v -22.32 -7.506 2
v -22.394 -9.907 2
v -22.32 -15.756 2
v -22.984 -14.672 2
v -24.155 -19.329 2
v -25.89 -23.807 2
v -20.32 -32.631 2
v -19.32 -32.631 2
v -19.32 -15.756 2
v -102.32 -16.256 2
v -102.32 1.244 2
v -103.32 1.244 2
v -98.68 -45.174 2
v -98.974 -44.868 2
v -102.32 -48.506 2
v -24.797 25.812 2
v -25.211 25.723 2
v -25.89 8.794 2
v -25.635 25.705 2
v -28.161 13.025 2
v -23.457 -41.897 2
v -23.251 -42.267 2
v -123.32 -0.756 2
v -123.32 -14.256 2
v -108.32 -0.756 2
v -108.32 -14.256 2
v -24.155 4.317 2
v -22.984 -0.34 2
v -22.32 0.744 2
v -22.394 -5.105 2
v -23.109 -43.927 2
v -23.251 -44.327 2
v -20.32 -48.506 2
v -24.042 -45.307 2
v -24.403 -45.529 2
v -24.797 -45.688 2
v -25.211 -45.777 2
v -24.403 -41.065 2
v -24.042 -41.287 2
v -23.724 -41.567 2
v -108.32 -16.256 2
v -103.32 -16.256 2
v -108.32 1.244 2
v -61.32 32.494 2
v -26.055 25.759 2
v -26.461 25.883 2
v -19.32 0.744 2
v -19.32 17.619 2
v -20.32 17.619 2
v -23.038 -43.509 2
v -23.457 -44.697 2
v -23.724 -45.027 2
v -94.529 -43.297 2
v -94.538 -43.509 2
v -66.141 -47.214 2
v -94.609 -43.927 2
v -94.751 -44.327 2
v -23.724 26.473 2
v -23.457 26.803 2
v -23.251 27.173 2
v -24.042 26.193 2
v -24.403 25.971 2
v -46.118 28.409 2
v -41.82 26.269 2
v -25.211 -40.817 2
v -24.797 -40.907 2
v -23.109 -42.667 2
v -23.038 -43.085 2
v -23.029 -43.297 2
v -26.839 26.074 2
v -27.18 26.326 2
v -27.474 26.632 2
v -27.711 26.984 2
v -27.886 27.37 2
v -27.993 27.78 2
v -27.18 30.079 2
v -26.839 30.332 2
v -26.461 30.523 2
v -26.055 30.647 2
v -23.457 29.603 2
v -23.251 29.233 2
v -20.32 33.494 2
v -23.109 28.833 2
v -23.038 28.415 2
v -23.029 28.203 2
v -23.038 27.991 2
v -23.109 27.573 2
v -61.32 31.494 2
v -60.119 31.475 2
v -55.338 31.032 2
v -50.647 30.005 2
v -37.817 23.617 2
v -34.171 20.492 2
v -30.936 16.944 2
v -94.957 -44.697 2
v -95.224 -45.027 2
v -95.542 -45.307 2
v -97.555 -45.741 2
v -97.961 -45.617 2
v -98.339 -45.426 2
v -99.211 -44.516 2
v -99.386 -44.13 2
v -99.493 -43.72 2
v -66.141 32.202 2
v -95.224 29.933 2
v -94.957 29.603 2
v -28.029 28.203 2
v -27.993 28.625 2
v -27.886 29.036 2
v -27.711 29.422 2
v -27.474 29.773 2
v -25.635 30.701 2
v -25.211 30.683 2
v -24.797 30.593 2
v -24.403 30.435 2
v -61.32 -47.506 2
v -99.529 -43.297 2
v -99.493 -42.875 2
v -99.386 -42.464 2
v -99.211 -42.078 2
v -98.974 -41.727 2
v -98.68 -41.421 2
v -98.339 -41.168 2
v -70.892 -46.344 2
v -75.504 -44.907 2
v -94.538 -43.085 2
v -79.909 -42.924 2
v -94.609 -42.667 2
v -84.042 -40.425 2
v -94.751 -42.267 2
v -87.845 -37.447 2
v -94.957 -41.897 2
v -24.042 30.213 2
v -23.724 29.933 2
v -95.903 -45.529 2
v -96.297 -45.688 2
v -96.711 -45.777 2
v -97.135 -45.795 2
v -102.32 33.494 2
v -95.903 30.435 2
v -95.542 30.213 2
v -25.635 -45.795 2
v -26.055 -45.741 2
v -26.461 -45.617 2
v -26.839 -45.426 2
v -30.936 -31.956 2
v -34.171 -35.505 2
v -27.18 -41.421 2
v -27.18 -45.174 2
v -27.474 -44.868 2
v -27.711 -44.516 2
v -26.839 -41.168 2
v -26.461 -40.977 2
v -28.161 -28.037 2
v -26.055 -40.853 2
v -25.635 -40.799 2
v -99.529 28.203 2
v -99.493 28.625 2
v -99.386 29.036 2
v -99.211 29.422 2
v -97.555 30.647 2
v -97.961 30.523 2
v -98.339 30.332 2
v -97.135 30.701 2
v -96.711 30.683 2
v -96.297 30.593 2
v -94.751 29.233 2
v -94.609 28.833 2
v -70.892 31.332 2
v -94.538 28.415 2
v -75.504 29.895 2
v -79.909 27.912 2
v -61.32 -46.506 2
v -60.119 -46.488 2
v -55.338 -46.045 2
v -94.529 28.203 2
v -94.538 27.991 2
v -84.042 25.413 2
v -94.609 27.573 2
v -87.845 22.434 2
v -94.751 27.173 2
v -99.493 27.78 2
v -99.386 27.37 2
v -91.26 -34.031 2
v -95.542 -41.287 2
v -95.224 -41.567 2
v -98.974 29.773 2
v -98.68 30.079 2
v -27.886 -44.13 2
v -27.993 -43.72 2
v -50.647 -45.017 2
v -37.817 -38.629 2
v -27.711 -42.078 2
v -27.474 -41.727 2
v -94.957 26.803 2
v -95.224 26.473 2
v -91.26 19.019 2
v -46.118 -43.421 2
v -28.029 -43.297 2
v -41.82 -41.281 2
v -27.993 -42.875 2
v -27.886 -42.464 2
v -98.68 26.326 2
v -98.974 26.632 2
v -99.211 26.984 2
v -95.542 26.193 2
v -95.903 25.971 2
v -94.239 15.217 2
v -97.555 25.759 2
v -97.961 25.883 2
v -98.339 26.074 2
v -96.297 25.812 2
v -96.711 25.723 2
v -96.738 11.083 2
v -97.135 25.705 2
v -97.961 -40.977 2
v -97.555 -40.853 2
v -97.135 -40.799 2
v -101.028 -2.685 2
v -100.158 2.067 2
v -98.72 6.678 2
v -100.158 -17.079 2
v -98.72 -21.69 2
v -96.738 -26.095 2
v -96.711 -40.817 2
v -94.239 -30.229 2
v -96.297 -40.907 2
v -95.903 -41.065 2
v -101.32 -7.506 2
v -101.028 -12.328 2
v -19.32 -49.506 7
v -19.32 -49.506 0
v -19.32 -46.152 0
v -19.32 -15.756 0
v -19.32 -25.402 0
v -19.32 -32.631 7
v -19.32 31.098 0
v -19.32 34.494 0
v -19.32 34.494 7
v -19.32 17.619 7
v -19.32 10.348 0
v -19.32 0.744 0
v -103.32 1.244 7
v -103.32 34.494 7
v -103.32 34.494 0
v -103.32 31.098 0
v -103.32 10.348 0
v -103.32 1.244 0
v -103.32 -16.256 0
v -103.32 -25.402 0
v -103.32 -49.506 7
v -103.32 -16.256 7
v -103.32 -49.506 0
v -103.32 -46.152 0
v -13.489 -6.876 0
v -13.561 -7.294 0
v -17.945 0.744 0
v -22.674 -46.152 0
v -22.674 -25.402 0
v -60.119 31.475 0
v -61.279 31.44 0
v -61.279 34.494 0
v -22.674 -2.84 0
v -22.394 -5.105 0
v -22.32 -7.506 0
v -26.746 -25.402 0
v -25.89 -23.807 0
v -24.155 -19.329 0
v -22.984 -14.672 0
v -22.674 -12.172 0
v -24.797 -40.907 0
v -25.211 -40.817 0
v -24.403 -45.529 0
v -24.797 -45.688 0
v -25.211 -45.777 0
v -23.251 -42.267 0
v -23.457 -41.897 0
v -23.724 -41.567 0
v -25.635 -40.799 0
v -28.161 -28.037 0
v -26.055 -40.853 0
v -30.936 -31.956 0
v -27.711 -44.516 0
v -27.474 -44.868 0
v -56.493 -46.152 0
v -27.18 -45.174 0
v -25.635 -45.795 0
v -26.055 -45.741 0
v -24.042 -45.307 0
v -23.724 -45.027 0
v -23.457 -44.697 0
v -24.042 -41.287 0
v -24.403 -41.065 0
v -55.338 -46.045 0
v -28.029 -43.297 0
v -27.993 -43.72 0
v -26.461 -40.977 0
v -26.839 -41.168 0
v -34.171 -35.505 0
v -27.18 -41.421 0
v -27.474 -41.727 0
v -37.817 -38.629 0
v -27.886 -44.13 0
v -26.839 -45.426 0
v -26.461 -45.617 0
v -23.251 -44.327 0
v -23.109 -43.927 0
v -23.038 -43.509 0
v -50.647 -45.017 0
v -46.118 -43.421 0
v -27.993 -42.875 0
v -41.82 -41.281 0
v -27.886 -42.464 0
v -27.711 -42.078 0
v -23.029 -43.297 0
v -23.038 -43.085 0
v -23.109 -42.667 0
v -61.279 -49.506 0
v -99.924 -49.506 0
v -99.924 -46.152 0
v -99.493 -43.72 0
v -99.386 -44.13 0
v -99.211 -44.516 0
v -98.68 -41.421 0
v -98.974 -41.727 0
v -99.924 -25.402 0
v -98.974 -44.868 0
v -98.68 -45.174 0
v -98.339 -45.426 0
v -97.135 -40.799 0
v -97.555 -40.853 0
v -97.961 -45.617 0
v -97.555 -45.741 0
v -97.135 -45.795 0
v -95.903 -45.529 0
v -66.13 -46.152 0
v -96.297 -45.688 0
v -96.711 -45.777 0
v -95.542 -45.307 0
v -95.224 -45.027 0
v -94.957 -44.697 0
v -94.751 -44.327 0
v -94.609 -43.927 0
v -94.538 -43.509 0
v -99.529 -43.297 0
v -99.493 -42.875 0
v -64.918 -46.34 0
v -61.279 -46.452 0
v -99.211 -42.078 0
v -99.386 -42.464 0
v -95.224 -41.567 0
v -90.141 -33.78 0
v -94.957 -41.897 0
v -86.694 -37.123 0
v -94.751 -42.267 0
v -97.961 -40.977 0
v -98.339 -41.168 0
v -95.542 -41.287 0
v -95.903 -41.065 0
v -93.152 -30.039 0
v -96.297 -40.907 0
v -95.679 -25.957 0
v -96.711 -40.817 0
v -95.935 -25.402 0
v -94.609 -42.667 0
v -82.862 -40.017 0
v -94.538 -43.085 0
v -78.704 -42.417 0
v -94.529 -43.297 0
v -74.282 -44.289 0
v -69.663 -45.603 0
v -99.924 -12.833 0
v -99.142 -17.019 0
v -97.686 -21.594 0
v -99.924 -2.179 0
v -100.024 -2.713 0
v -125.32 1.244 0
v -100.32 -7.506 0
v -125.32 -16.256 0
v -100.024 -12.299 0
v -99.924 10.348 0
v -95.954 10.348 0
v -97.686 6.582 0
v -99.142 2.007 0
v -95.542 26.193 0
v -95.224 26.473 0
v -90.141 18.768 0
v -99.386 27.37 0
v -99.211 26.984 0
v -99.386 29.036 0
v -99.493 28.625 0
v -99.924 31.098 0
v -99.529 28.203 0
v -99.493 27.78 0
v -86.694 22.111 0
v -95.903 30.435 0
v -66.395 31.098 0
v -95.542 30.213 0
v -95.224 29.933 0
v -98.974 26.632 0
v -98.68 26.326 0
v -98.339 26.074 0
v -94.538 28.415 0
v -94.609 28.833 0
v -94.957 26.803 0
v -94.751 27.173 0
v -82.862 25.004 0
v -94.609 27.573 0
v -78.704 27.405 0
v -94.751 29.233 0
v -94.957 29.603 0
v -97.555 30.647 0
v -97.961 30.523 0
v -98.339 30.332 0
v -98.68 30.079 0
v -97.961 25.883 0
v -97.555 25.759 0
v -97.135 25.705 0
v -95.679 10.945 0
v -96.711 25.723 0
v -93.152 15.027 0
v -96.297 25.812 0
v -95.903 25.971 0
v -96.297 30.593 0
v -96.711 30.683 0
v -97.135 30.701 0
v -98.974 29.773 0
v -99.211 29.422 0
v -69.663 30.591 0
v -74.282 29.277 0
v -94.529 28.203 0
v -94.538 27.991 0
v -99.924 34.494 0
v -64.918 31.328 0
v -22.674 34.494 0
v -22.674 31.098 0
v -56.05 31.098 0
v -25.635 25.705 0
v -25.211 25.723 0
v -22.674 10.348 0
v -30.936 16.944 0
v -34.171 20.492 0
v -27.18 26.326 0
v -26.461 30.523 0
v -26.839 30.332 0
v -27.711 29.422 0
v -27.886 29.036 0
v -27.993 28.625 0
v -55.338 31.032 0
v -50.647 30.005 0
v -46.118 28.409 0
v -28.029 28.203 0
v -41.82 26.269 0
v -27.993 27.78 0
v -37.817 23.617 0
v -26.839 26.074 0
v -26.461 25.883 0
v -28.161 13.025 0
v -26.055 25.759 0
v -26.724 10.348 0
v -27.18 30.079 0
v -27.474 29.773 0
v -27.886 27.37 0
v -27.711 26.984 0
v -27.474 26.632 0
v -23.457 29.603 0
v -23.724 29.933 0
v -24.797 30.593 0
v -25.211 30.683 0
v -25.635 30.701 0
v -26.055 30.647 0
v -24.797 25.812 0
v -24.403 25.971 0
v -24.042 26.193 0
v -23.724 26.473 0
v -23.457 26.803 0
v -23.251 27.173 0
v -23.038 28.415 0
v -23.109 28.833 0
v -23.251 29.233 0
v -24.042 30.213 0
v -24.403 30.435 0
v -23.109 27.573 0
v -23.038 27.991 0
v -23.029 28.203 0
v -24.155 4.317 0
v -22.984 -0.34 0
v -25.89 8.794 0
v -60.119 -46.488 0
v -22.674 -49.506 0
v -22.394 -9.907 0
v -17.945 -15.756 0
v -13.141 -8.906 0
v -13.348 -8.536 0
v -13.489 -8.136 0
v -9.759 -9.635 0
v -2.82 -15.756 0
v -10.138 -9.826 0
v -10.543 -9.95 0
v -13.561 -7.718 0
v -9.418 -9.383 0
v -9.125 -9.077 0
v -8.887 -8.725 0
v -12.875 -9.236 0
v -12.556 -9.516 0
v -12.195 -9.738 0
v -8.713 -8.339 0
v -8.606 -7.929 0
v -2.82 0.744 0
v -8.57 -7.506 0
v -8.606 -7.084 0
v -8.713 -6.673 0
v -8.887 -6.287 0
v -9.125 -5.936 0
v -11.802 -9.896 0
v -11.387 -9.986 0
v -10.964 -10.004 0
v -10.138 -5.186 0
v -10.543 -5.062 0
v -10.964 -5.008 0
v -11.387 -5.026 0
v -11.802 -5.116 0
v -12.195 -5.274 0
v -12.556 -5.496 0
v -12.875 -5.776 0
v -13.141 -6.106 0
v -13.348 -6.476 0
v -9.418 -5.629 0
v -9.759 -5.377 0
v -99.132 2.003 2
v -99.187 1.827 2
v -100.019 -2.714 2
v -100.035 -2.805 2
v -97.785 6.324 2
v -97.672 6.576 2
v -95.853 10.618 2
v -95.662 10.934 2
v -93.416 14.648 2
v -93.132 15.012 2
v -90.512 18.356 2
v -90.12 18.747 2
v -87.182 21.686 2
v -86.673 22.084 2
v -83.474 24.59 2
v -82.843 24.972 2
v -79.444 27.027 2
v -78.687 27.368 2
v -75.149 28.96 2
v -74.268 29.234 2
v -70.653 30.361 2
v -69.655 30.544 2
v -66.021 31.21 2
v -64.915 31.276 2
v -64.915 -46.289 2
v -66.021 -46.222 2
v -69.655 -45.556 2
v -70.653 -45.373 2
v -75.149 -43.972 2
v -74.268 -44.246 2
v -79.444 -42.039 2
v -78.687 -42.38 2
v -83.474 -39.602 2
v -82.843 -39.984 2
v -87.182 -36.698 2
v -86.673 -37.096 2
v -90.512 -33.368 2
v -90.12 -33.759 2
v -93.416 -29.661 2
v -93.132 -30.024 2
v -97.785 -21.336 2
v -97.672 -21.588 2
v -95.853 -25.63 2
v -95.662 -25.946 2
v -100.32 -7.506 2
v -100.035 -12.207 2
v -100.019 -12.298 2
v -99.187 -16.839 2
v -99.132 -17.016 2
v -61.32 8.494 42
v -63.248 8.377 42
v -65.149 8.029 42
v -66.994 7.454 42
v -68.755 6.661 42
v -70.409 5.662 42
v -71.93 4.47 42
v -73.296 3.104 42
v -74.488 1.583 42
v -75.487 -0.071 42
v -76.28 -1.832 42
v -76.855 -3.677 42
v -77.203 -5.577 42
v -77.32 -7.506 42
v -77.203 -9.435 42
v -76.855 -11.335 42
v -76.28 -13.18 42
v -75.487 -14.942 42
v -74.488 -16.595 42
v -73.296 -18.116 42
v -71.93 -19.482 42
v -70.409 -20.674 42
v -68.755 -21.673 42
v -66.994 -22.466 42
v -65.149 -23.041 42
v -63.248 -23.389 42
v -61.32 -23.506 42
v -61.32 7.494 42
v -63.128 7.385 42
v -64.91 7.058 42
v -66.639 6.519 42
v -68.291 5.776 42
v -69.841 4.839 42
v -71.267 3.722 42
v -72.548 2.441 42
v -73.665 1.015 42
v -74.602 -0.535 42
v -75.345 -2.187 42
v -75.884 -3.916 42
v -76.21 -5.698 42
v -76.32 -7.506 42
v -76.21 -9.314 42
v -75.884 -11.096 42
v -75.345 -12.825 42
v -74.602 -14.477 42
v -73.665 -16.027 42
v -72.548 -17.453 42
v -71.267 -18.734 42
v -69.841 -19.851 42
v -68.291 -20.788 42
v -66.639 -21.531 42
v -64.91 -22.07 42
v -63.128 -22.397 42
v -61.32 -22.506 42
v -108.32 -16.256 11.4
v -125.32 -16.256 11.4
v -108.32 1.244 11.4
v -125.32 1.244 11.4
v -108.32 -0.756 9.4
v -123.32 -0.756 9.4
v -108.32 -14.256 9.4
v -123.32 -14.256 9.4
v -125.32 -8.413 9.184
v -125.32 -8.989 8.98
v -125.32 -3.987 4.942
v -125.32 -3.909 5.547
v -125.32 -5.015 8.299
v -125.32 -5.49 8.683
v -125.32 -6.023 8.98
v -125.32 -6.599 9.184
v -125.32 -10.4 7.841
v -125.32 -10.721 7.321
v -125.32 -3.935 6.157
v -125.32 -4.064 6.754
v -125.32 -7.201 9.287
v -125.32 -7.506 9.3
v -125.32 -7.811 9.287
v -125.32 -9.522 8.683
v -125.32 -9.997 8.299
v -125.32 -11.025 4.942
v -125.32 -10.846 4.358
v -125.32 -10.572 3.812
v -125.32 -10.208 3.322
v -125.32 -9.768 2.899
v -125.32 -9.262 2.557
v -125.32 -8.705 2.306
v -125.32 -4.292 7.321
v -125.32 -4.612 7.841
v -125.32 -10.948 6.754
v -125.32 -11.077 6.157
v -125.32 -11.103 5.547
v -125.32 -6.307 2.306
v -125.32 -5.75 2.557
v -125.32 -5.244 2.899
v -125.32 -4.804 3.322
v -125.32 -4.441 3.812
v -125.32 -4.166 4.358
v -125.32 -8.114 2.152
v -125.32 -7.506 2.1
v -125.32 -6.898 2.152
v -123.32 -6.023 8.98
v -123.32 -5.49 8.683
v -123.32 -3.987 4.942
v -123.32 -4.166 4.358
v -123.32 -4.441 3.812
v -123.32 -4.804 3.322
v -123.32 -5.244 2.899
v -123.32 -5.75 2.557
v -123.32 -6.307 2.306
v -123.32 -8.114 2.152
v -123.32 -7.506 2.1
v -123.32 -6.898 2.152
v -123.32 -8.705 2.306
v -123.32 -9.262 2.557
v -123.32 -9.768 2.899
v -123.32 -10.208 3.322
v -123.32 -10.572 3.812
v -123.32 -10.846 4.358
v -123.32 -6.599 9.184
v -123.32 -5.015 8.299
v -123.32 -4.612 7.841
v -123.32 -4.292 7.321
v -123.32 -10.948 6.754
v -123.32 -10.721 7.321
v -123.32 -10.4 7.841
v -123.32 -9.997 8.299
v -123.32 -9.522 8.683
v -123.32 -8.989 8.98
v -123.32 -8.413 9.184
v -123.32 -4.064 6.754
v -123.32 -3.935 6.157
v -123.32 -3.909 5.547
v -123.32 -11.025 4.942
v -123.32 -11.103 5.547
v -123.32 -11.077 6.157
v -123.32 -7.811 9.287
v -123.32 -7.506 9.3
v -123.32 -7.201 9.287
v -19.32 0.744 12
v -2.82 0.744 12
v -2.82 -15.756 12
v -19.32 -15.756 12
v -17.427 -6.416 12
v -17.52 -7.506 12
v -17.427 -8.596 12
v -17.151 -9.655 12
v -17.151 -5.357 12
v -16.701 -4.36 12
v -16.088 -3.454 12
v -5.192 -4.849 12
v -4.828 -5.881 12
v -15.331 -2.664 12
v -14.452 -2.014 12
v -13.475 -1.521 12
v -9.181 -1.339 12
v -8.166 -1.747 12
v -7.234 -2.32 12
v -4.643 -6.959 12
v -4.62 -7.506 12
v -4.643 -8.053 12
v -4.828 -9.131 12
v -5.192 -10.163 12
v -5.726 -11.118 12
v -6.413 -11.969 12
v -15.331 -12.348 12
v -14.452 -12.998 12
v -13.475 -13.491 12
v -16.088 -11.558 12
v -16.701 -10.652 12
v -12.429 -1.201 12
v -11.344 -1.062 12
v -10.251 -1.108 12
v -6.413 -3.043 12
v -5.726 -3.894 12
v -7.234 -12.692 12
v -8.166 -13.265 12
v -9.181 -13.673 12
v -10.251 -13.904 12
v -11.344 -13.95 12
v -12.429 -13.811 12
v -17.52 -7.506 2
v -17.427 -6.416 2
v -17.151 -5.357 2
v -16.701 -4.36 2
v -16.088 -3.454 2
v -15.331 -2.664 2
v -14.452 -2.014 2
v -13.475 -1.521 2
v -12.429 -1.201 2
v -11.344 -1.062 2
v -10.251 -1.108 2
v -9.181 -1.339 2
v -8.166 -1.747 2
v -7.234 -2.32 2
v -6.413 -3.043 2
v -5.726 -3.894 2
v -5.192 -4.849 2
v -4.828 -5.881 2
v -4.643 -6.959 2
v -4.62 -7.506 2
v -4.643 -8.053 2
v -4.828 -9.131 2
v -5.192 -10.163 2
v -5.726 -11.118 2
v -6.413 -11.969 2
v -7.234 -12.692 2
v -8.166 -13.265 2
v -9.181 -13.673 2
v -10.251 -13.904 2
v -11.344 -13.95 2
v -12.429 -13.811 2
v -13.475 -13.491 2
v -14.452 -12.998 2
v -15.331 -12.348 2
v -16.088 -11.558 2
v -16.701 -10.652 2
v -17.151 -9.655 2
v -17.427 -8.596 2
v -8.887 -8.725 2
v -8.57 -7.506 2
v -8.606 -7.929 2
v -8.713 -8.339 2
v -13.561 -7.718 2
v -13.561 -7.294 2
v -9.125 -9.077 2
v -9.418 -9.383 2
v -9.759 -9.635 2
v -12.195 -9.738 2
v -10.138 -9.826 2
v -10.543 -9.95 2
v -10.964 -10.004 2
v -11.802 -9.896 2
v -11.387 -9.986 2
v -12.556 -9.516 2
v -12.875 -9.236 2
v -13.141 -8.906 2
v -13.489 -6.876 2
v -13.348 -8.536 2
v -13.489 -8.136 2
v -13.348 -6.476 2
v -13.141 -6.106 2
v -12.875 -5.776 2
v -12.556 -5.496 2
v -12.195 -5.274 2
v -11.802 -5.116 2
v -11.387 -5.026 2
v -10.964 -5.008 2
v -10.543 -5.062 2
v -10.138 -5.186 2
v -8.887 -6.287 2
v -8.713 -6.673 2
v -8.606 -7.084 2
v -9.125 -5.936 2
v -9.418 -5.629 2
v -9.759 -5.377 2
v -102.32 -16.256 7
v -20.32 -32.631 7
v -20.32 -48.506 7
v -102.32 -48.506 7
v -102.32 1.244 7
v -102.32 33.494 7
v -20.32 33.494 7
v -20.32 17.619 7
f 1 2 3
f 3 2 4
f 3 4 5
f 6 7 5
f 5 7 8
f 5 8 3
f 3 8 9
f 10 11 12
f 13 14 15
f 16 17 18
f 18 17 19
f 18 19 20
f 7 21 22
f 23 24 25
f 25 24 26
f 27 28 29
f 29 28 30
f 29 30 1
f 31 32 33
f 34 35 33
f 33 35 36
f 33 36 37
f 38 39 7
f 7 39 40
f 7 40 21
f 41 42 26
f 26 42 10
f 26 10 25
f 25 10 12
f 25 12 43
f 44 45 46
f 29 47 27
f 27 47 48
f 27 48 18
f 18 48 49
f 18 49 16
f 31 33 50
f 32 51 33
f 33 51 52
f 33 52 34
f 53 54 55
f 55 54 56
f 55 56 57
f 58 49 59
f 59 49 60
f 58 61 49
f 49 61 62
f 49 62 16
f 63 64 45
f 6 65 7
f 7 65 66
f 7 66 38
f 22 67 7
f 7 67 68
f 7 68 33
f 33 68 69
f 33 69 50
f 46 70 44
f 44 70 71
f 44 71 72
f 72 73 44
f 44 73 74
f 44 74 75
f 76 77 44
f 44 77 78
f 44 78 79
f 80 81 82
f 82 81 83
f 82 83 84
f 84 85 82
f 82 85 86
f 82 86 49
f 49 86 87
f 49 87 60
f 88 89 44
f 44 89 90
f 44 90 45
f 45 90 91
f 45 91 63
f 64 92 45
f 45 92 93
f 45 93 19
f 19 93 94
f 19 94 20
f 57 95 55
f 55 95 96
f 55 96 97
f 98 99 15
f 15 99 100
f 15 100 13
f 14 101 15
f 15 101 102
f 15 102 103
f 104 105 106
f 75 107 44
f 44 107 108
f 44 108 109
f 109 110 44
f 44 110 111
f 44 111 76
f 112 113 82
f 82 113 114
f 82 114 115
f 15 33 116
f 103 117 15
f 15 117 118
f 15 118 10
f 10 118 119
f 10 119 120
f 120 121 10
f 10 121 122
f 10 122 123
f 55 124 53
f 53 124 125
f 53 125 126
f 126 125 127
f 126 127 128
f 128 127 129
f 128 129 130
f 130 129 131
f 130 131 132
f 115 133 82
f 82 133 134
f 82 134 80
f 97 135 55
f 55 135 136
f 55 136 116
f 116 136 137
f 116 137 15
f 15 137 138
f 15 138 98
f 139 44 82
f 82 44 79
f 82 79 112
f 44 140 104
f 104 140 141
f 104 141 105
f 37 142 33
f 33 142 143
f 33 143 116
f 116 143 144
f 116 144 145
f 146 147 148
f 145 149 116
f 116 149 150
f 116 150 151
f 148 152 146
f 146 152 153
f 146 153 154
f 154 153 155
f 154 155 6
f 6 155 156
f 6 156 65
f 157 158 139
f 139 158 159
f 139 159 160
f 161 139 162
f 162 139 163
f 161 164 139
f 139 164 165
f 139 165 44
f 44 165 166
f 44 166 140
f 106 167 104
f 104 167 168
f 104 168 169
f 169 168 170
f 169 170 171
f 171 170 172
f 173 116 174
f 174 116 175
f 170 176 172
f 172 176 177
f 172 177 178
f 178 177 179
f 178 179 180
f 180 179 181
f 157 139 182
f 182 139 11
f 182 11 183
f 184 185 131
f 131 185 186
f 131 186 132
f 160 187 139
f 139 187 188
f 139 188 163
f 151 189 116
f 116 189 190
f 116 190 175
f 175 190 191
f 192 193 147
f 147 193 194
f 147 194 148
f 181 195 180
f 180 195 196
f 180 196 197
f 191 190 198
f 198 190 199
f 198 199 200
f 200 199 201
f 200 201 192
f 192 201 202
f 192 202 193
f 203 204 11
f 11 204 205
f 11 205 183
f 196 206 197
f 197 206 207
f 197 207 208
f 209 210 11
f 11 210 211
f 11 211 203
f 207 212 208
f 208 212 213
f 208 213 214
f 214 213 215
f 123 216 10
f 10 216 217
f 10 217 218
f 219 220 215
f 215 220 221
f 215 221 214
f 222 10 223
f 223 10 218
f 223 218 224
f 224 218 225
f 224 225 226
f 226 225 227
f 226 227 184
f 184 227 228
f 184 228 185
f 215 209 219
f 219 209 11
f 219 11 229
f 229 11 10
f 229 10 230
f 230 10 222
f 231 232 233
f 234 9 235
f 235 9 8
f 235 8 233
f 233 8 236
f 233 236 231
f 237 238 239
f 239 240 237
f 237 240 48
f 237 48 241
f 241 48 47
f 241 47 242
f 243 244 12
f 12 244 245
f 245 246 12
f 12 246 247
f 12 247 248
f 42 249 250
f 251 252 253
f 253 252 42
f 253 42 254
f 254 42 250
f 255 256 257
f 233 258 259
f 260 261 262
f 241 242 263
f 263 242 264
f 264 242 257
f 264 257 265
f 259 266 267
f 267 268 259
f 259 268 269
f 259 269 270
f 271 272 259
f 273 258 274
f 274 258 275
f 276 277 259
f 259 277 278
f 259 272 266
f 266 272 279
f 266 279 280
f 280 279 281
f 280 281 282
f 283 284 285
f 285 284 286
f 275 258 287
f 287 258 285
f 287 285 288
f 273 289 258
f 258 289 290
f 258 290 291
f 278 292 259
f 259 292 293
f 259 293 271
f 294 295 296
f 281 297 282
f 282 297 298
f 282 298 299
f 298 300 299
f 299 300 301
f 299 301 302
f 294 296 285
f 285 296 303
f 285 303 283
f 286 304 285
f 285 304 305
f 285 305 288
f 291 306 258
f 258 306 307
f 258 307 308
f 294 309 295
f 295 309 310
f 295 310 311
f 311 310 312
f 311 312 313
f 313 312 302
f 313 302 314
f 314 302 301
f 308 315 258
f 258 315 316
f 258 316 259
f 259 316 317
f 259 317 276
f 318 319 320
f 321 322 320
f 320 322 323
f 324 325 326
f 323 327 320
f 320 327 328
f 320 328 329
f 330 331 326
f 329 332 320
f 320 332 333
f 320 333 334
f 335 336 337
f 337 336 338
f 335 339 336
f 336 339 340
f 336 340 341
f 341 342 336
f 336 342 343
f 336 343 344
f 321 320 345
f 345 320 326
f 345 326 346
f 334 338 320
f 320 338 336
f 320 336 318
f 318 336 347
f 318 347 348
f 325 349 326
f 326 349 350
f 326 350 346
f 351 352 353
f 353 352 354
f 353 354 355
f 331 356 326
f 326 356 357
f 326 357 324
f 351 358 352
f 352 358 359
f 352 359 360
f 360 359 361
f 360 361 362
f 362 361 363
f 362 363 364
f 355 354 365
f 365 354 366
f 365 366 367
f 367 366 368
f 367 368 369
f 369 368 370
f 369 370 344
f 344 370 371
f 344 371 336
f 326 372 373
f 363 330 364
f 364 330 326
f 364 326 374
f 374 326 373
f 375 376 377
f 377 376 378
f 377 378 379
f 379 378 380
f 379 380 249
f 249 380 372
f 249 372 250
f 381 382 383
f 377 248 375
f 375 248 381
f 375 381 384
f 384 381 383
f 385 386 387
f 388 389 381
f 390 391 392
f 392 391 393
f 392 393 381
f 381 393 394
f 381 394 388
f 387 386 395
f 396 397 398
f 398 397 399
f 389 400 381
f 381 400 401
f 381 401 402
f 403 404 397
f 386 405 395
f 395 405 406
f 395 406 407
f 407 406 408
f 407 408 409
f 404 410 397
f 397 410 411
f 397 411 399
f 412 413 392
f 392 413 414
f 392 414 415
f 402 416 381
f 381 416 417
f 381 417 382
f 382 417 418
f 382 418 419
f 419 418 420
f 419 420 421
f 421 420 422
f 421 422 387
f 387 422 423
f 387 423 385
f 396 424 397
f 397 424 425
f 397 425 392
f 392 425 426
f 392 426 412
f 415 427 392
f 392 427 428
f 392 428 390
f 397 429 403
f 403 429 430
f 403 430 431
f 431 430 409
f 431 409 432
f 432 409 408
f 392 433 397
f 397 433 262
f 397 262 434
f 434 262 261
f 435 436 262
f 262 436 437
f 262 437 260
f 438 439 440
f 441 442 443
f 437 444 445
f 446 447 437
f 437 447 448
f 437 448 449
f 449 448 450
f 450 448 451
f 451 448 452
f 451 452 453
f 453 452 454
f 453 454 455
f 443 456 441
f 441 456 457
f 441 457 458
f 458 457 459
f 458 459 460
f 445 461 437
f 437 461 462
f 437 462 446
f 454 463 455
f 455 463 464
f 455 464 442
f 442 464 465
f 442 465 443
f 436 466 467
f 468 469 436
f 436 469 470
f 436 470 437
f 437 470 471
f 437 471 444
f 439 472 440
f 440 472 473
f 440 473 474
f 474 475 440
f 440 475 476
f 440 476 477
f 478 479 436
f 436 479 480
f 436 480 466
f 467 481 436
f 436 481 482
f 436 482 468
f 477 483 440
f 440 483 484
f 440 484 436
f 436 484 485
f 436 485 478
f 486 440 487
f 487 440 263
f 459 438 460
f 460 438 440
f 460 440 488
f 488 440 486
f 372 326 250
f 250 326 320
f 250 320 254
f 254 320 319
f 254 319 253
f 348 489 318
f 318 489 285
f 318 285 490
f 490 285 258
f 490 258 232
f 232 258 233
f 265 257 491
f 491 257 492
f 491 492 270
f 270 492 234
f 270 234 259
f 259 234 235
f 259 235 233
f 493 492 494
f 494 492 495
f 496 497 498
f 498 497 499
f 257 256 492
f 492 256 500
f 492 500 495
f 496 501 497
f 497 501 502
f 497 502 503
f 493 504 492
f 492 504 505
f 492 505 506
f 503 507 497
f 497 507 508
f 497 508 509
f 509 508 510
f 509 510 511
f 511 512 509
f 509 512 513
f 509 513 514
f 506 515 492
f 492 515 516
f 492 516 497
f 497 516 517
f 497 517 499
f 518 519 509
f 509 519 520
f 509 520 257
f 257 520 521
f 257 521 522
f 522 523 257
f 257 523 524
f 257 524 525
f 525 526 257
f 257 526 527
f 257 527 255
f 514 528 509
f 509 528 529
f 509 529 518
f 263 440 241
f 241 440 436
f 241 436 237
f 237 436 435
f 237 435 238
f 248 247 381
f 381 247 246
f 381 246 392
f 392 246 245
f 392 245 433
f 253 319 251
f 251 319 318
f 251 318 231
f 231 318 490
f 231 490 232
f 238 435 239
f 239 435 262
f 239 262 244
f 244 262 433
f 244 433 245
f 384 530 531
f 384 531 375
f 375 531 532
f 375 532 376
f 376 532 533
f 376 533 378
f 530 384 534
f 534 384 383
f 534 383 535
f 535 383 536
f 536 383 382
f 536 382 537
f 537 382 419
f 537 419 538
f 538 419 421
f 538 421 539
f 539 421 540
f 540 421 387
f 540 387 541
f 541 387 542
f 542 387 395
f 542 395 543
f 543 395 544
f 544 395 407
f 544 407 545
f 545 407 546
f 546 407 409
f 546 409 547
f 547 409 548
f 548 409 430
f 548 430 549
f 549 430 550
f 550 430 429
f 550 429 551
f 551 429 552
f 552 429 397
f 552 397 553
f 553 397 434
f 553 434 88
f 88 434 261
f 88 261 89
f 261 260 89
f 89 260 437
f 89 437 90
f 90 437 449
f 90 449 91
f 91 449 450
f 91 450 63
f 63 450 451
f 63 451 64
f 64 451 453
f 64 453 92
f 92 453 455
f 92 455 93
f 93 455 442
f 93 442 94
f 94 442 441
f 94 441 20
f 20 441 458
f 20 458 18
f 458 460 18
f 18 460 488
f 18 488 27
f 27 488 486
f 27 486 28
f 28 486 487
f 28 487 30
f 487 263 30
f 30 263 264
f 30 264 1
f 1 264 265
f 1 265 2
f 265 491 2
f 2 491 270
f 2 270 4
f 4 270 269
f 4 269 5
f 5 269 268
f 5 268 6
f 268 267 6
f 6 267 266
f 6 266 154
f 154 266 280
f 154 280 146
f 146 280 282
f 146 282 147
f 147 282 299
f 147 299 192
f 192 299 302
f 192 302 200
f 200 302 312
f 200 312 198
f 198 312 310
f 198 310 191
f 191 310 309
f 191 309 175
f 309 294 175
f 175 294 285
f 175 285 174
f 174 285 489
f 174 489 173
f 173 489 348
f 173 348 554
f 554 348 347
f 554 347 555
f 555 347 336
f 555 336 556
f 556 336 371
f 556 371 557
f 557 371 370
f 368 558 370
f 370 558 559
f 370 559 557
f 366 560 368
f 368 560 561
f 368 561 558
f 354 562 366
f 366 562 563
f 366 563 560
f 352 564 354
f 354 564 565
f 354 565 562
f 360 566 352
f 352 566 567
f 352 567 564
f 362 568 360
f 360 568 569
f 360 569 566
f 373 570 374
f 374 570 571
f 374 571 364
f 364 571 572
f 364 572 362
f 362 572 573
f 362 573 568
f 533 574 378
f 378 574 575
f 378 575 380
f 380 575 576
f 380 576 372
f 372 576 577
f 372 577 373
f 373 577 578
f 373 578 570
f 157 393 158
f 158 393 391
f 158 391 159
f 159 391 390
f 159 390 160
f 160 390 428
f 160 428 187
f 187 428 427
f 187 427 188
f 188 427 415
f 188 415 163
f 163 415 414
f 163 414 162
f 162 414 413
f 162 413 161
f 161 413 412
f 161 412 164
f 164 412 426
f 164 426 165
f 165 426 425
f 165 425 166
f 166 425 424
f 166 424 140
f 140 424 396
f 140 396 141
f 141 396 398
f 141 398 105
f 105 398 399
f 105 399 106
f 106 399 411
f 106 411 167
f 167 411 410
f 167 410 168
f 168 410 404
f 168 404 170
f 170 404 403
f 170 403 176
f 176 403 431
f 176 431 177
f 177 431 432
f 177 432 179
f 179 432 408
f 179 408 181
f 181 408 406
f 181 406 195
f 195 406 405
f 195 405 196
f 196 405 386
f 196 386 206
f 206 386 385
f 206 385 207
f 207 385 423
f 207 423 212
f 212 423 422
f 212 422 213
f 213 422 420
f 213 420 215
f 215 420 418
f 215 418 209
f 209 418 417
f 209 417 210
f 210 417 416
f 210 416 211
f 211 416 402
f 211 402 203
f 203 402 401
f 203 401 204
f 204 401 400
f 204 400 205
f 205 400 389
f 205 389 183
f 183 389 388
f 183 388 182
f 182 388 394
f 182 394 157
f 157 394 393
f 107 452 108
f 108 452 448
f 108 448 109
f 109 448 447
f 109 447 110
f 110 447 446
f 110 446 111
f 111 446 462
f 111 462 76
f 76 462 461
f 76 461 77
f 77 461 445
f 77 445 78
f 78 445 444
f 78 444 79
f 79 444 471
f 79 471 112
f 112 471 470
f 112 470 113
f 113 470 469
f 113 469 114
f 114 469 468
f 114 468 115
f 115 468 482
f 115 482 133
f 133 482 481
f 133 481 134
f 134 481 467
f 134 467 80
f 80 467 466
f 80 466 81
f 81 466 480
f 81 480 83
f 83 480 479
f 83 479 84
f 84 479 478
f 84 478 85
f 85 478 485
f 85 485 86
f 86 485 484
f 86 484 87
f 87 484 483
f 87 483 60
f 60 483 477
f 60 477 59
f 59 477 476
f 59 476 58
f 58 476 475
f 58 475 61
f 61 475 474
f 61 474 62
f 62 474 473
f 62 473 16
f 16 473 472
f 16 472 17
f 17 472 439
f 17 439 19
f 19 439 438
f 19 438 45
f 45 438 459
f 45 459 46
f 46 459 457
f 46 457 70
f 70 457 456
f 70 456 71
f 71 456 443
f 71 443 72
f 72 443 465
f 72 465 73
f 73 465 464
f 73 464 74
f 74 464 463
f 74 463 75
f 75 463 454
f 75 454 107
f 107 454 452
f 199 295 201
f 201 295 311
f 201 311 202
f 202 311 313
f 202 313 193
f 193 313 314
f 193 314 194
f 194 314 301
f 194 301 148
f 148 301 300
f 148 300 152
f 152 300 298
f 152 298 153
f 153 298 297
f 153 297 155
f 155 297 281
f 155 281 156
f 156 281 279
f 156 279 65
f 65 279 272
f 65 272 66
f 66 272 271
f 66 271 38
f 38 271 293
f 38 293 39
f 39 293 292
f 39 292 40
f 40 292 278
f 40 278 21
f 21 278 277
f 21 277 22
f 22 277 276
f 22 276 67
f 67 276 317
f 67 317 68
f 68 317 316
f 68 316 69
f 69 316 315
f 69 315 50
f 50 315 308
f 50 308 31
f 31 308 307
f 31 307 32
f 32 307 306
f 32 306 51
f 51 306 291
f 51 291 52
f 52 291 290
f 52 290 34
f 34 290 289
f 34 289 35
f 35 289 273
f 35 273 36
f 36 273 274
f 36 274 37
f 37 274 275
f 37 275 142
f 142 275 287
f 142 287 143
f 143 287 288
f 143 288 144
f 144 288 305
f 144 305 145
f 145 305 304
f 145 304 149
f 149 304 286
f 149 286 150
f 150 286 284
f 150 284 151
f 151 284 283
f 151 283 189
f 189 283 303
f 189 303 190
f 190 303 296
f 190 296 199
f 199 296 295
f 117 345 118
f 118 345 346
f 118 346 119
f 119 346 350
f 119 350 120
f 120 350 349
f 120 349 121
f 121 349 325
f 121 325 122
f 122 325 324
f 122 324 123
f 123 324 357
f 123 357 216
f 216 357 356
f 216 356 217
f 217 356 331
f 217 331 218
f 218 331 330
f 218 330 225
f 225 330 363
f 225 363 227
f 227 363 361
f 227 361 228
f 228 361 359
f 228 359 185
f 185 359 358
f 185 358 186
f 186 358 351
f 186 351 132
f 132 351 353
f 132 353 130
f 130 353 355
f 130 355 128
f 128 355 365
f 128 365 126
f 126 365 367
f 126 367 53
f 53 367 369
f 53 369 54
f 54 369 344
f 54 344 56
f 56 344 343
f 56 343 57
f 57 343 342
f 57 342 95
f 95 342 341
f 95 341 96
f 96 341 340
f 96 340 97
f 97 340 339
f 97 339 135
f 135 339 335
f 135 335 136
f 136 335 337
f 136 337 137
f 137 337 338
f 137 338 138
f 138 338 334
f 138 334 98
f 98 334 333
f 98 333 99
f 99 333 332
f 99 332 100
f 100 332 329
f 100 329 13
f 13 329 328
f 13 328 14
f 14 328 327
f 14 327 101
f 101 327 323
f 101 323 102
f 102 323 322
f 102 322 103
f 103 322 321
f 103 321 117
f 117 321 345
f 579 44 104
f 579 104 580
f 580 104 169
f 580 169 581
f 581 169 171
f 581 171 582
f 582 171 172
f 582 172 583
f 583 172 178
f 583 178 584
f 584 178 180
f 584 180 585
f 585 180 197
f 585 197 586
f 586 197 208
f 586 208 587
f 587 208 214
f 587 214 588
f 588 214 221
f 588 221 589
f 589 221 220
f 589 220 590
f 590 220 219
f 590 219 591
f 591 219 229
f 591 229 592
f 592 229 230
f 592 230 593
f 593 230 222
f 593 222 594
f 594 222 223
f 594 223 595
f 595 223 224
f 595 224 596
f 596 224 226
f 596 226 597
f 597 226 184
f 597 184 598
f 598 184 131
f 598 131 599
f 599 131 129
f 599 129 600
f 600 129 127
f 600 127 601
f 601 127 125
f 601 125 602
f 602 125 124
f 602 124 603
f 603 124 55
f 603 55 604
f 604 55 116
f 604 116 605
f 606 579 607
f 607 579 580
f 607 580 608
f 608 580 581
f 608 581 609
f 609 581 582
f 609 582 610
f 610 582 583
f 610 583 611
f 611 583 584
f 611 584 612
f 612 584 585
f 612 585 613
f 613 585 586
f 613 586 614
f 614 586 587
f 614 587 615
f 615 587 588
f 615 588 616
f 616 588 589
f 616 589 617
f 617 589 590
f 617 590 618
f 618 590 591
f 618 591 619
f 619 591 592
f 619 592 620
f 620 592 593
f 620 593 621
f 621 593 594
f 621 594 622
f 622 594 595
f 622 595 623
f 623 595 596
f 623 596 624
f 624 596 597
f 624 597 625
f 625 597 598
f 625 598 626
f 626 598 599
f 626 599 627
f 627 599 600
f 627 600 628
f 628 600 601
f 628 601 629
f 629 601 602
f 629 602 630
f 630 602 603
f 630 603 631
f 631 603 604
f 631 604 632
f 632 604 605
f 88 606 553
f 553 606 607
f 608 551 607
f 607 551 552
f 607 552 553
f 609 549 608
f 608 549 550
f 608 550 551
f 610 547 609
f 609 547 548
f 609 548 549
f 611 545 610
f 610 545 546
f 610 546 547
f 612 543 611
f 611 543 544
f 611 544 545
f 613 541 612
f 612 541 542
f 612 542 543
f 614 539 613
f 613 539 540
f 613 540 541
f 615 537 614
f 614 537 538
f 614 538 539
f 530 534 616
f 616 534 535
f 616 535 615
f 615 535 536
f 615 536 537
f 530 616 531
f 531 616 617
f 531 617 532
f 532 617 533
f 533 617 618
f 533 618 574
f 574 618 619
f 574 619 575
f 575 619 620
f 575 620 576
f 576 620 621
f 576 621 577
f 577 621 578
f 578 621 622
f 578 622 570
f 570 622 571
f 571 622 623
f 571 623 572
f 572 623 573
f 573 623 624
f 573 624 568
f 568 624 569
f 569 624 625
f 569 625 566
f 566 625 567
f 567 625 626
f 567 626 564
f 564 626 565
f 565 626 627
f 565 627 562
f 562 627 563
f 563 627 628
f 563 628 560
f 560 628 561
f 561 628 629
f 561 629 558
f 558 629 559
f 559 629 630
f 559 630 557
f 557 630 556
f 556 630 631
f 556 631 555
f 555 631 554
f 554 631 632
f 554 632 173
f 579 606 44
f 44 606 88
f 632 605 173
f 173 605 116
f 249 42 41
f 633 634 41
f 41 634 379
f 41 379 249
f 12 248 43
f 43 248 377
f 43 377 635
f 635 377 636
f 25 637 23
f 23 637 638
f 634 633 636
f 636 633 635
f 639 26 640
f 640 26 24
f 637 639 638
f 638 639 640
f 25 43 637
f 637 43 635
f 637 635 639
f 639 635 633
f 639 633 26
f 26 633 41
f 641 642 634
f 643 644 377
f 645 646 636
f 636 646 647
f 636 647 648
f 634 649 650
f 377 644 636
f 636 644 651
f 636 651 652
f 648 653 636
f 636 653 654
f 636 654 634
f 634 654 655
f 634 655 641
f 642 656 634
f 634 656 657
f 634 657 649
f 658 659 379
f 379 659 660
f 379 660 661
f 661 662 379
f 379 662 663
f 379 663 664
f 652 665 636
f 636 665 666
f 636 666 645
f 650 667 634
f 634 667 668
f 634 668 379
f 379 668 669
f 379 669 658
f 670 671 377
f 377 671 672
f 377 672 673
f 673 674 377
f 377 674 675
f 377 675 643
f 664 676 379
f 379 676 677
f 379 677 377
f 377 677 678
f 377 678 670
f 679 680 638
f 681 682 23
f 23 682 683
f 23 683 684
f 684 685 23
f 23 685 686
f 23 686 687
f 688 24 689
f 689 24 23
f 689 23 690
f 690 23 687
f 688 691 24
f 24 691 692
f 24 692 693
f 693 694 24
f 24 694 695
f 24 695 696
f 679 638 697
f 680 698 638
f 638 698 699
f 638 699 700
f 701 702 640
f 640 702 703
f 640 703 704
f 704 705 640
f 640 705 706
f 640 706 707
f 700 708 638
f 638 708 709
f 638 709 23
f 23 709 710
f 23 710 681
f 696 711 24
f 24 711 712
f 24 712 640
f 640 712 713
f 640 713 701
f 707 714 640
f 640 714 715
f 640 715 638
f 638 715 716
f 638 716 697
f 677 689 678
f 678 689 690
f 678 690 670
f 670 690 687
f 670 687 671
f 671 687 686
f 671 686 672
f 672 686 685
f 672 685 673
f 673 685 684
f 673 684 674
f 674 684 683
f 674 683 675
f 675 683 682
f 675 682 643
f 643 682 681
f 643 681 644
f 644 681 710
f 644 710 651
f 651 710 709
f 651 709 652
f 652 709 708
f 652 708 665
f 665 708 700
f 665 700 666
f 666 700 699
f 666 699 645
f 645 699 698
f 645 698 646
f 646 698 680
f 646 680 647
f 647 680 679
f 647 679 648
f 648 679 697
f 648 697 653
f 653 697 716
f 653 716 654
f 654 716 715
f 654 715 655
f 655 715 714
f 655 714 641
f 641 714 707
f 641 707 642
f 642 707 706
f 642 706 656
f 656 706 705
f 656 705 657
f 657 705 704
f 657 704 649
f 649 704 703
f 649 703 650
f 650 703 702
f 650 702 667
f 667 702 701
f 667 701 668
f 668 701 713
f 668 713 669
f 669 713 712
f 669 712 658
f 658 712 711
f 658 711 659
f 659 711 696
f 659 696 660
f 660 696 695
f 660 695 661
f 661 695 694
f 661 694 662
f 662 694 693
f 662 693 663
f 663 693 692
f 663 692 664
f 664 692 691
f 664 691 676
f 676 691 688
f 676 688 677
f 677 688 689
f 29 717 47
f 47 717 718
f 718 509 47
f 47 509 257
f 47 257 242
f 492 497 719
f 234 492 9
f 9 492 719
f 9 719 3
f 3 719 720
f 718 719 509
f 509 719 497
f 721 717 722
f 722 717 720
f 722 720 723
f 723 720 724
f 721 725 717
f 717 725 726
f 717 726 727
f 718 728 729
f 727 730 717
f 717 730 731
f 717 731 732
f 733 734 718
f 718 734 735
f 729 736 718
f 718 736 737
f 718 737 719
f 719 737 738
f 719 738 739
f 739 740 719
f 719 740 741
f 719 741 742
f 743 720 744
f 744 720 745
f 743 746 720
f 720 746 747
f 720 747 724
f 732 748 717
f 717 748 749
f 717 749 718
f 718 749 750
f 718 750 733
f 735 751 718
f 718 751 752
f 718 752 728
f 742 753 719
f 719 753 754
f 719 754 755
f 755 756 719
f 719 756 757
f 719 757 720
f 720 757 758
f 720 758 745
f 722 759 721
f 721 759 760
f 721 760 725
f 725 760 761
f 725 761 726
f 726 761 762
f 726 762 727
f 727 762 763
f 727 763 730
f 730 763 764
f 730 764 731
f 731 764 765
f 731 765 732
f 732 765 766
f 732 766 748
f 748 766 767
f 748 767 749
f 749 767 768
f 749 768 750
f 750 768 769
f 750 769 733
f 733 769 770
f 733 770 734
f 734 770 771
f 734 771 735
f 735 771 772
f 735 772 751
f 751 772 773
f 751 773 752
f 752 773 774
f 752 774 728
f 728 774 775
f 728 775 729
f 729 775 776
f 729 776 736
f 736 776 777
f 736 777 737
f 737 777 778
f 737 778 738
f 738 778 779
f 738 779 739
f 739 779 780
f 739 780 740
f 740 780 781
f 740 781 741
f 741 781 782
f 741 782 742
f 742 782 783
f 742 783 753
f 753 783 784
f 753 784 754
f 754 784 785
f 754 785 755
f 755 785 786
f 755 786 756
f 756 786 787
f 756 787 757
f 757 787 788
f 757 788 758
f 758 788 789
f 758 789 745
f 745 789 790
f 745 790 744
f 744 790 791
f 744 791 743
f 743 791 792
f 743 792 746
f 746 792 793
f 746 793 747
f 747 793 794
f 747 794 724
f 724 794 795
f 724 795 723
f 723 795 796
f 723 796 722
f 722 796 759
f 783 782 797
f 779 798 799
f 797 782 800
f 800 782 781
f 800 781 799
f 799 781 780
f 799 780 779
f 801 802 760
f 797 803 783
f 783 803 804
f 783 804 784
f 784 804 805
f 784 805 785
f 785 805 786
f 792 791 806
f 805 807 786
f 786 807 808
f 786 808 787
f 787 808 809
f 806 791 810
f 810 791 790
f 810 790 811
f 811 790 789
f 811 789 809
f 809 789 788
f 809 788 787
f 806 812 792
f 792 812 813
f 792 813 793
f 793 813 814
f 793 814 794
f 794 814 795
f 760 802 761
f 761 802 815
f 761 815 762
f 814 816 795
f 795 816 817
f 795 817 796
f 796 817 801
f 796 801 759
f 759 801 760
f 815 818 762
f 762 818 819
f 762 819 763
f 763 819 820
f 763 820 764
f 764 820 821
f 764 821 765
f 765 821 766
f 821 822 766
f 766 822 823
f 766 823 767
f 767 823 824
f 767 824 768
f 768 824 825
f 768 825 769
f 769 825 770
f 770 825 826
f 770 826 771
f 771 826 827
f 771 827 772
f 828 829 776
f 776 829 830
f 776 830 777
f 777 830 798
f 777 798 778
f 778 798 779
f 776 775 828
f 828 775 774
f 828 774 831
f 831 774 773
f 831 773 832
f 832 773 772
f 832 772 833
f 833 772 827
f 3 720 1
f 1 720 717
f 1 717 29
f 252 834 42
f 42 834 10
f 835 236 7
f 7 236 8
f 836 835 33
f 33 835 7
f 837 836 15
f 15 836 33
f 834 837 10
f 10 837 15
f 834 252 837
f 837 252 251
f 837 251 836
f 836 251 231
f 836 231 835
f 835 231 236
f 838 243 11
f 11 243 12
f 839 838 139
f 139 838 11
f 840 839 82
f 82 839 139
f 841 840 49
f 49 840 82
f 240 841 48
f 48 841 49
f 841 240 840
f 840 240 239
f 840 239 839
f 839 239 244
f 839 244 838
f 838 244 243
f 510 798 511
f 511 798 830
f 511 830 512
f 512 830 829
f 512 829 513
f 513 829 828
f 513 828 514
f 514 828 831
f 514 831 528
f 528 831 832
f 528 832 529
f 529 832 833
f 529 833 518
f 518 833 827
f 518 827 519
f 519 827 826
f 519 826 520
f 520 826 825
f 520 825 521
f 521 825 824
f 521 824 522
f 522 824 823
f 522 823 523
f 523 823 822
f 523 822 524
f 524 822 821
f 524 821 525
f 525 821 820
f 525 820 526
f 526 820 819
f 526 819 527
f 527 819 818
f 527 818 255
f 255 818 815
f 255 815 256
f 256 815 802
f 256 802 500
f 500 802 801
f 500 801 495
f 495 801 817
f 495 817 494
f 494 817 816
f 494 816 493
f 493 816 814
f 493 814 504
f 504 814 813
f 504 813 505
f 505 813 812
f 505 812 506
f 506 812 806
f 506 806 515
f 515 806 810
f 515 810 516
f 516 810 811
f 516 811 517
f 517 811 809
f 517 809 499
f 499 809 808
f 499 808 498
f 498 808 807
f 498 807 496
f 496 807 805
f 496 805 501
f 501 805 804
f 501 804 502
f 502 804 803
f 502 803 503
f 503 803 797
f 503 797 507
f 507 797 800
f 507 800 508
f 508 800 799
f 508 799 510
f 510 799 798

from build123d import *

# Parameters (mm, degrees)
CROQUIS1_W              = 84
CROQUIS1_H              = 84
CROQUIS1_R              = 39
CROQUIS1_R_2            = 2.5
SALIENTE_EXTRUIR1_DEPTH = 2
REVOLUCI_N2_ANGLE       = 180
SALIENTE_EXTRUIR2_DEPTH = 20
SALIENTE_EXTRUIR3_DEPTH = 15
CROQUIS8_W              = 11.4
CROQUIS8_H              = 17.5
CROQUIS8_R              = 3.6
SALIENTE_EXTRUIR4_DEPTH = 2
SALIENTE_EXTRUIR5_DEPTH = 16.5
CROQUIS10_W             = 16.5
CROQUIS10_H             = 16.5
CROQUIS10_R             = 6.45
SALIENTE_EXTRUIR6_DEPTH = 10
SALIENTE_EXTRUIR7_START = -16.5
SALIENTE_EXTRUIR7_DEPTH = 16.5
SALIENTE_EXTRUIR8_DEPTH = 5
CROQUIS13_R             = 2.5
CORTAR_EXTRUIR1_DEPTH   = 2


with BuildPart() as part:
    # Croquis1 → Saliente-Extruir1 (new body)
    with BuildSketch(Plane.XY):
        with Locations((-61.319838057, -7.506072874)):
            Rectangle(CROQUIS1_W, CROQUIS1_H)
        with Locations((-61.319838057, -7.506072874)):
            Circle(CROQUIS1_R, mode=Mode.SUBTRACT)
        with Locations((-97.028730507, 28.202819575)):
            Circle(CROQUIS1_R_2, mode=Mode.SUBTRACT)
        with Locations((-25.528730507, 28.202819575)):
            Circle(CROQUIS1_R_2, mode=Mode.SUBTRACT)
        with Locations((-25.528730507, -43.297180425)):
            Circle(CROQUIS1_R_2, mode=Mode.SUBTRACT)
        with Locations((-97.028730507, -43.297180425)):
            Circle(CROQUIS1_R_2, mode=Mode.SUBTRACT)
    extrude(amount=SALIENTE_EXTRUIR1_DEPTH)

    # Croquis4 → Revolución2 (revolve)
    with BuildSketch(Plane(origin=(-61.319838057, -49.506072874, 2), x_dir=(0, 0, -1), z_dir=(1, 0, 0))):
        Polygon((-40, 27), (0, 3), (0, 2), (-40, 26), align=None)
    revolve(axis=Axis((-61.319838057, -7.506072874, 2), (0, 0, -1)), revolution_arc=REVOLUCI_N2_ANGLE)

    # Croquis6 → Saliente-Extruir2 (add)
    with BuildSketch(Plane.ZY.offset(103.319838057)):
        Polygon((0, -7.506072874), (0, -16.256072874), (2, -16.256072874), (2, 1.243927126), (0, 1.243927126), align=None)
    extrude(amount=SALIENTE_EXTRUIR2_DEPTH)

    # Croquis7 → Saliente-Extruir3 (add)
    with BuildSketch(Plane.ZY.offset(123.319838057)):
        Polygon((11.4, 1.243927126), (2, 1.243927126), (2, -0.756072874), (9.4, -0.756072874), (9.4, -14.256072874), (2, -14.256072874), (2, -16.256072874), (11.4, -16.256072874), align=None)
    extrude(amount=-SALIENTE_EXTRUIR3_DEPTH)

    # Croquis8 → Saliente-Extruir4 (add)
    with BuildSketch(Plane.ZY.offset(123.319838057)):
        with Locations((5.7, -7.506072874)):
            Rectangle(CROQUIS8_W, CROQUIS8_H)
        with Locations((5.7, -7.506072874)):
            Circle(CROQUIS8_R, mode=Mode.SUBTRACT)
    extrude(amount=SALIENTE_EXTRUIR4_DEPTH)

    # Croquis9 → Saliente-Extruir5 (add)
    with BuildSketch(Plane(origin=(-19.319838057, 0, 0), x_dir=(0, 0, -1), z_dir=(1, 0, 0))):
        Polygon((0, -7.506072874), (0, 0.743927126), (-2, 0.743927126), (-2, -15.756072874), (0, -15.756072874), align=None)
    extrude(amount=SALIENTE_EXTRUIR5_DEPTH)

    # Croquis10 → Saliente-Extruir6 (add)
    with BuildSketch(Plane.XY.offset(2)):
        with Locations((-11.069838057, -7.506072874)):
            Rectangle(CROQUIS10_W, CROQUIS10_H)
        with Locations((-11.069838057, -7.506072874)):
            Circle(CROQUIS10_R, mode=Mode.SUBTRACT)
    extrude(amount=SALIENTE_EXTRUIR6_DEPTH)

    # Croquis11 → Saliente-Extruir7 (add)
    with BuildSketch(Plane(origin=(0, 0.743927126, 0), x_dir=(1, 0, 0), z_dir=(0, 1, 0)).offset(SALIENTE_EXTRUIR7_START)):
        Polygon((-19.319838057, -12), (-19.319838057, -2), (-22.319838057, -2), align=None)
    extrude(amount=SALIENTE_EXTRUIR7_DEPTH)

    # Croquis12 → Saliente-Extruir8 (add)
    with BuildSketch(Plane.XY.offset(2)):
        Polygon((-19.319838057, -32.631072874), (-20.319838057, -32.631072874), (-20.319838057, -48.506072874), (-102.319838057, -48.506072874), (-102.319838057, -16.256072874), (-103.319838057, -16.256072874), (-103.319838057, -49.506072874), (-19.319838057, -49.506072874), align=None)
        Polygon((-19.319838057, 34.493927126), (-103.319838057, 34.493927126), (-103.319838057, 1.243927126), (-102.319838057, 1.243927126), (-102.319838057, 33.493927126), (-20.319838057, 33.493927126), (-20.319838057, 17.618927126), (-19.319838057, 17.618927126), align=None)
    extrude(amount=SALIENTE_EXTRUIR8_DEPTH)

    # Croquis13 → Cortar-Extruir1 (cut)
    with BuildSketch(Plane.XY.offset(2)):
        with Locations((-11.069838057, -7.506072874)):
            Circle(CROQUIS13_R)
    extrude(amount=-CORTAR_EXTRUIR1_DEPTH, mode=Mode.SUBTRACT)


solid = part.part
